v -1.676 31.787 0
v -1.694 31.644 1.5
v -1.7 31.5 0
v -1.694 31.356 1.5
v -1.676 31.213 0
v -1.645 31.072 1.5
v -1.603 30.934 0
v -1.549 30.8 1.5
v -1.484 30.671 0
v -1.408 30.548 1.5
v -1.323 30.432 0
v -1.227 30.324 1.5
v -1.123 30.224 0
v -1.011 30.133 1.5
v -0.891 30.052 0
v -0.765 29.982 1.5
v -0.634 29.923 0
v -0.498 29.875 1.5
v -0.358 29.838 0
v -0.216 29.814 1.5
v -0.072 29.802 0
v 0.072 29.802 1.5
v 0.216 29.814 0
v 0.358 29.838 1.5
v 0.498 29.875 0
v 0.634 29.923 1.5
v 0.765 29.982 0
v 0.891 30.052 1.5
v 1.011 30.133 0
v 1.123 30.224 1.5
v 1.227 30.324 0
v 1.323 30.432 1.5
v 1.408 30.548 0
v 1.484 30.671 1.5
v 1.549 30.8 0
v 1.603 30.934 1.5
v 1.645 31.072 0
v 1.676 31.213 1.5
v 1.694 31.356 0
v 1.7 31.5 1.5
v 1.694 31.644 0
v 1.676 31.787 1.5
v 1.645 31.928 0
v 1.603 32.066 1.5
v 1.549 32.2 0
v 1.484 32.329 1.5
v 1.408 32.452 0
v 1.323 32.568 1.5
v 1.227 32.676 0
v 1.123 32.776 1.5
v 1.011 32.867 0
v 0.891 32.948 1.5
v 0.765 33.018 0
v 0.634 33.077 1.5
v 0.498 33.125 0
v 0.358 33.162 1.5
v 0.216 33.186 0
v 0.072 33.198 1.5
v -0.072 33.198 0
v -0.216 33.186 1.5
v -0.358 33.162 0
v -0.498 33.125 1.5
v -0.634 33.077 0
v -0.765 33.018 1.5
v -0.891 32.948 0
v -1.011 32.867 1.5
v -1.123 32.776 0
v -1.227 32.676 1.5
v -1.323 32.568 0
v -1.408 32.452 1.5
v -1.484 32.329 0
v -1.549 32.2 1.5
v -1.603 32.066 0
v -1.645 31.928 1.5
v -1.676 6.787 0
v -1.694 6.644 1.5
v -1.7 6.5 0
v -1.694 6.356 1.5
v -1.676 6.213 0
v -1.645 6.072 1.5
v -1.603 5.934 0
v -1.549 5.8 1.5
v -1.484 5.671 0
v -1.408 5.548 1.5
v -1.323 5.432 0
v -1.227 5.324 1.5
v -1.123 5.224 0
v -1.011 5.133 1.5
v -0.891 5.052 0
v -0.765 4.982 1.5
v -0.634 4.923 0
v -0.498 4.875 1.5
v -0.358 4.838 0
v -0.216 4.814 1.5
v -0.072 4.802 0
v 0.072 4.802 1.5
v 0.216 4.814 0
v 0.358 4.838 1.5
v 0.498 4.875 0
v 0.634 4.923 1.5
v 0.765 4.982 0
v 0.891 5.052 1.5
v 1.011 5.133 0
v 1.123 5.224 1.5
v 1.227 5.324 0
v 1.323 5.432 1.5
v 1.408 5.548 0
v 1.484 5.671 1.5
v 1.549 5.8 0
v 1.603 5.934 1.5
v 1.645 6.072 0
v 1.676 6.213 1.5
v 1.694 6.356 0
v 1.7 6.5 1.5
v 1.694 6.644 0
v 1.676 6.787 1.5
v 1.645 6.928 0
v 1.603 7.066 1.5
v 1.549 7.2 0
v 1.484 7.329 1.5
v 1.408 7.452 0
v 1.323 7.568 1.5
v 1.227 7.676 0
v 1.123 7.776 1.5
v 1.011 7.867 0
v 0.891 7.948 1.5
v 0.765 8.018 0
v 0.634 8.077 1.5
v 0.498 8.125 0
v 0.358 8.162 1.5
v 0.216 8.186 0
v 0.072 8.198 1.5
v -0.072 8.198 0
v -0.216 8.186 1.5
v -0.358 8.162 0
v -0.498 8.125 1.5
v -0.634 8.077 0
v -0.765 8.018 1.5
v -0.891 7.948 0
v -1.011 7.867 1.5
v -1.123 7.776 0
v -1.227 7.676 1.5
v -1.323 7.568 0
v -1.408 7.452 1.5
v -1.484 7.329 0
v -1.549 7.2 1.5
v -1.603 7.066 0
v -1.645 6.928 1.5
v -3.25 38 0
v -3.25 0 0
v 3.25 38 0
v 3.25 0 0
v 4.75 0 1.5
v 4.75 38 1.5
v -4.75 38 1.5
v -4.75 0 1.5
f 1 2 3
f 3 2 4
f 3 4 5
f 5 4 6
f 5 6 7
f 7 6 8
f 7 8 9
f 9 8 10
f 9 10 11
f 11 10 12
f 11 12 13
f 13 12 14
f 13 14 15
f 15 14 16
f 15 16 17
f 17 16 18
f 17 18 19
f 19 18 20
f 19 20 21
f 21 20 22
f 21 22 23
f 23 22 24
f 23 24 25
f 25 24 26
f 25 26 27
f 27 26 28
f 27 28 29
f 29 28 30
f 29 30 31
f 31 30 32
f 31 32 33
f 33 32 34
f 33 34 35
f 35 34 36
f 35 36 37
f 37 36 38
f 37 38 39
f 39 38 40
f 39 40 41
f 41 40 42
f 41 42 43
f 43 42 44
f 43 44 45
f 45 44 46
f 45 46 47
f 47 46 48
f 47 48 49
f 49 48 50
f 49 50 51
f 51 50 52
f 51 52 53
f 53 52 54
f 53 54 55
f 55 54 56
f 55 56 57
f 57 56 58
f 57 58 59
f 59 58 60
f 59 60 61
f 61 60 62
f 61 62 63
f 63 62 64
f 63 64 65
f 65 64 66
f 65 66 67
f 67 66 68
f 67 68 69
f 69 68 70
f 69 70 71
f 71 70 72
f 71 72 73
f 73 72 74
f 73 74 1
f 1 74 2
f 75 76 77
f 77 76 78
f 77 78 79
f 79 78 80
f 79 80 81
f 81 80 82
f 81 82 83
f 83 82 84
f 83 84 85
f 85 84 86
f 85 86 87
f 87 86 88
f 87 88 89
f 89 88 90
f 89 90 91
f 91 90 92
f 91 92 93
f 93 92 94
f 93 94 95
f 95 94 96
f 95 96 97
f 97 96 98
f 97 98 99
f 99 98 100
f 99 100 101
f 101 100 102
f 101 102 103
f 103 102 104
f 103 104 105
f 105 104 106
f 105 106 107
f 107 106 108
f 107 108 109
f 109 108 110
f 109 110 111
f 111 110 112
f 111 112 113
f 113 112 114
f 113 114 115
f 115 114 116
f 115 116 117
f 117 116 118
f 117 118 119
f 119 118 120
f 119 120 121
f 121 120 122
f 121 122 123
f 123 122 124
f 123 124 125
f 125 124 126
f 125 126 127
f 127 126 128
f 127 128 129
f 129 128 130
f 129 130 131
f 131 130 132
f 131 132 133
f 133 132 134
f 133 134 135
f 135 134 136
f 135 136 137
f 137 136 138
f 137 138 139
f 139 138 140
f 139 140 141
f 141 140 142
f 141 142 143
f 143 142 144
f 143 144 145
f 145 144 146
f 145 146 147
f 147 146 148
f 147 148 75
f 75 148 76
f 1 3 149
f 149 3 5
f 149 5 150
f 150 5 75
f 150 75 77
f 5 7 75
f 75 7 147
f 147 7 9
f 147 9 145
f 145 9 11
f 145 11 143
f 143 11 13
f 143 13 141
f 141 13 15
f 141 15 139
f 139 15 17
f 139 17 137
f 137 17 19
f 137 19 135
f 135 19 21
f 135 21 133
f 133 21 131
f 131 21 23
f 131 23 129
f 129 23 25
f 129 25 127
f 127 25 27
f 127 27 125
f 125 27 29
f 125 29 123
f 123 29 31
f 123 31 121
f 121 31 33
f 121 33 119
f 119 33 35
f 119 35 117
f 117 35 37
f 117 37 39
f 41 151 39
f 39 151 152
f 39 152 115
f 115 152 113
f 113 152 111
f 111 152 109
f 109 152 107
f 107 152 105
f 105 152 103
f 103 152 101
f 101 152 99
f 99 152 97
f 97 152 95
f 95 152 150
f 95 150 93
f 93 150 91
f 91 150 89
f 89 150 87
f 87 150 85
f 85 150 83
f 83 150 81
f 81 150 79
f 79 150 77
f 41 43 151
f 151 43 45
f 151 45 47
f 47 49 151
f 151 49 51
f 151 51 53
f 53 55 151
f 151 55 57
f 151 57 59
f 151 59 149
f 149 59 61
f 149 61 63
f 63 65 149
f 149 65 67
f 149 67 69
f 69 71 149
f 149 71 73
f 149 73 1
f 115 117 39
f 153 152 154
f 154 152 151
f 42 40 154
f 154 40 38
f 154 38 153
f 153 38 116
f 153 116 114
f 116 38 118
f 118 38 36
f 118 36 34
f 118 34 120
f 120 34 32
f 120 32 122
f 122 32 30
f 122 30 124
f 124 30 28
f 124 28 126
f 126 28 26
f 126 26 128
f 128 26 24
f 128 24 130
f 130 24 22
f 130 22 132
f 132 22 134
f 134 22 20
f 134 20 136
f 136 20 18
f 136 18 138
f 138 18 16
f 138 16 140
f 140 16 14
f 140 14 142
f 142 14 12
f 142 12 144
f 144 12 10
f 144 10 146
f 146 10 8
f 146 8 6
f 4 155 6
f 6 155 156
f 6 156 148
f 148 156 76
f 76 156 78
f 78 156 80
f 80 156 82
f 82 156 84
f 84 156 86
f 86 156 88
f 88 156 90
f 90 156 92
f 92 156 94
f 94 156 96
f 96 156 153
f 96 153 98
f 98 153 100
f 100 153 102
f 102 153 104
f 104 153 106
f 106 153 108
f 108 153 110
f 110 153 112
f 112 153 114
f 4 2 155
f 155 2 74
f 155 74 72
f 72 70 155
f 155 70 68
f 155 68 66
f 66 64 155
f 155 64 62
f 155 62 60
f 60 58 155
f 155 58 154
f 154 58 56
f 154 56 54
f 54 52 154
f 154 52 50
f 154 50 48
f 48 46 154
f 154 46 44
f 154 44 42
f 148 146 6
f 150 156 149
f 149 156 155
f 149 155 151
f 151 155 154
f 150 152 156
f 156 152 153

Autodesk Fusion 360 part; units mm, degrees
sketch "Sketch1" plane through (0, 0, 0) normal (0, 1, 0) x (1, 0, 0)
  line L0 (-3.25, 0) -> (3.25, 0)
  line L1 (-4.75, -1.5) -> (4.75, -1.5)
  line L2 (0, -1.5) -> (0, 0) construction
  line L3 (-3.25, 0) -> (-4.75, -1.5)
  line L4 (3.25, 0) -> (4.75, -1.5)
  dimension "d1" = 6.5
  dimension "d2" = 9.5
  dimension "d3" = 45
extrude "Extrude1" add sketch "Sketch1" along normal blind 38
sketch "Sketch2" plane through (0, 0, 1.5) normal (0, 0, 1) x (-1, 0, 0)
  line L0 (4.75, 0) -> (-4.75, 0)
  line L1 (-4.75, 0) -> (-4.75, -38)
  line L2 (-4.75, -38) -> (4.75, -38)
  line L3 (4.75, -38) -> (4.75, 0)
  line L4 (0, 0) -> (0, -38) construction
  point P0 (0, -31.5)
  point P1 (0, -6.5)
  dimension "d6" = 25
  dimension "d7" = 6.5
hole "Hole1" at (0, 31.5, 1.5) at (0, 6.5, 1.5) direction (0, 0, -1) diameter 3.4 depth 16 tip angle 118
